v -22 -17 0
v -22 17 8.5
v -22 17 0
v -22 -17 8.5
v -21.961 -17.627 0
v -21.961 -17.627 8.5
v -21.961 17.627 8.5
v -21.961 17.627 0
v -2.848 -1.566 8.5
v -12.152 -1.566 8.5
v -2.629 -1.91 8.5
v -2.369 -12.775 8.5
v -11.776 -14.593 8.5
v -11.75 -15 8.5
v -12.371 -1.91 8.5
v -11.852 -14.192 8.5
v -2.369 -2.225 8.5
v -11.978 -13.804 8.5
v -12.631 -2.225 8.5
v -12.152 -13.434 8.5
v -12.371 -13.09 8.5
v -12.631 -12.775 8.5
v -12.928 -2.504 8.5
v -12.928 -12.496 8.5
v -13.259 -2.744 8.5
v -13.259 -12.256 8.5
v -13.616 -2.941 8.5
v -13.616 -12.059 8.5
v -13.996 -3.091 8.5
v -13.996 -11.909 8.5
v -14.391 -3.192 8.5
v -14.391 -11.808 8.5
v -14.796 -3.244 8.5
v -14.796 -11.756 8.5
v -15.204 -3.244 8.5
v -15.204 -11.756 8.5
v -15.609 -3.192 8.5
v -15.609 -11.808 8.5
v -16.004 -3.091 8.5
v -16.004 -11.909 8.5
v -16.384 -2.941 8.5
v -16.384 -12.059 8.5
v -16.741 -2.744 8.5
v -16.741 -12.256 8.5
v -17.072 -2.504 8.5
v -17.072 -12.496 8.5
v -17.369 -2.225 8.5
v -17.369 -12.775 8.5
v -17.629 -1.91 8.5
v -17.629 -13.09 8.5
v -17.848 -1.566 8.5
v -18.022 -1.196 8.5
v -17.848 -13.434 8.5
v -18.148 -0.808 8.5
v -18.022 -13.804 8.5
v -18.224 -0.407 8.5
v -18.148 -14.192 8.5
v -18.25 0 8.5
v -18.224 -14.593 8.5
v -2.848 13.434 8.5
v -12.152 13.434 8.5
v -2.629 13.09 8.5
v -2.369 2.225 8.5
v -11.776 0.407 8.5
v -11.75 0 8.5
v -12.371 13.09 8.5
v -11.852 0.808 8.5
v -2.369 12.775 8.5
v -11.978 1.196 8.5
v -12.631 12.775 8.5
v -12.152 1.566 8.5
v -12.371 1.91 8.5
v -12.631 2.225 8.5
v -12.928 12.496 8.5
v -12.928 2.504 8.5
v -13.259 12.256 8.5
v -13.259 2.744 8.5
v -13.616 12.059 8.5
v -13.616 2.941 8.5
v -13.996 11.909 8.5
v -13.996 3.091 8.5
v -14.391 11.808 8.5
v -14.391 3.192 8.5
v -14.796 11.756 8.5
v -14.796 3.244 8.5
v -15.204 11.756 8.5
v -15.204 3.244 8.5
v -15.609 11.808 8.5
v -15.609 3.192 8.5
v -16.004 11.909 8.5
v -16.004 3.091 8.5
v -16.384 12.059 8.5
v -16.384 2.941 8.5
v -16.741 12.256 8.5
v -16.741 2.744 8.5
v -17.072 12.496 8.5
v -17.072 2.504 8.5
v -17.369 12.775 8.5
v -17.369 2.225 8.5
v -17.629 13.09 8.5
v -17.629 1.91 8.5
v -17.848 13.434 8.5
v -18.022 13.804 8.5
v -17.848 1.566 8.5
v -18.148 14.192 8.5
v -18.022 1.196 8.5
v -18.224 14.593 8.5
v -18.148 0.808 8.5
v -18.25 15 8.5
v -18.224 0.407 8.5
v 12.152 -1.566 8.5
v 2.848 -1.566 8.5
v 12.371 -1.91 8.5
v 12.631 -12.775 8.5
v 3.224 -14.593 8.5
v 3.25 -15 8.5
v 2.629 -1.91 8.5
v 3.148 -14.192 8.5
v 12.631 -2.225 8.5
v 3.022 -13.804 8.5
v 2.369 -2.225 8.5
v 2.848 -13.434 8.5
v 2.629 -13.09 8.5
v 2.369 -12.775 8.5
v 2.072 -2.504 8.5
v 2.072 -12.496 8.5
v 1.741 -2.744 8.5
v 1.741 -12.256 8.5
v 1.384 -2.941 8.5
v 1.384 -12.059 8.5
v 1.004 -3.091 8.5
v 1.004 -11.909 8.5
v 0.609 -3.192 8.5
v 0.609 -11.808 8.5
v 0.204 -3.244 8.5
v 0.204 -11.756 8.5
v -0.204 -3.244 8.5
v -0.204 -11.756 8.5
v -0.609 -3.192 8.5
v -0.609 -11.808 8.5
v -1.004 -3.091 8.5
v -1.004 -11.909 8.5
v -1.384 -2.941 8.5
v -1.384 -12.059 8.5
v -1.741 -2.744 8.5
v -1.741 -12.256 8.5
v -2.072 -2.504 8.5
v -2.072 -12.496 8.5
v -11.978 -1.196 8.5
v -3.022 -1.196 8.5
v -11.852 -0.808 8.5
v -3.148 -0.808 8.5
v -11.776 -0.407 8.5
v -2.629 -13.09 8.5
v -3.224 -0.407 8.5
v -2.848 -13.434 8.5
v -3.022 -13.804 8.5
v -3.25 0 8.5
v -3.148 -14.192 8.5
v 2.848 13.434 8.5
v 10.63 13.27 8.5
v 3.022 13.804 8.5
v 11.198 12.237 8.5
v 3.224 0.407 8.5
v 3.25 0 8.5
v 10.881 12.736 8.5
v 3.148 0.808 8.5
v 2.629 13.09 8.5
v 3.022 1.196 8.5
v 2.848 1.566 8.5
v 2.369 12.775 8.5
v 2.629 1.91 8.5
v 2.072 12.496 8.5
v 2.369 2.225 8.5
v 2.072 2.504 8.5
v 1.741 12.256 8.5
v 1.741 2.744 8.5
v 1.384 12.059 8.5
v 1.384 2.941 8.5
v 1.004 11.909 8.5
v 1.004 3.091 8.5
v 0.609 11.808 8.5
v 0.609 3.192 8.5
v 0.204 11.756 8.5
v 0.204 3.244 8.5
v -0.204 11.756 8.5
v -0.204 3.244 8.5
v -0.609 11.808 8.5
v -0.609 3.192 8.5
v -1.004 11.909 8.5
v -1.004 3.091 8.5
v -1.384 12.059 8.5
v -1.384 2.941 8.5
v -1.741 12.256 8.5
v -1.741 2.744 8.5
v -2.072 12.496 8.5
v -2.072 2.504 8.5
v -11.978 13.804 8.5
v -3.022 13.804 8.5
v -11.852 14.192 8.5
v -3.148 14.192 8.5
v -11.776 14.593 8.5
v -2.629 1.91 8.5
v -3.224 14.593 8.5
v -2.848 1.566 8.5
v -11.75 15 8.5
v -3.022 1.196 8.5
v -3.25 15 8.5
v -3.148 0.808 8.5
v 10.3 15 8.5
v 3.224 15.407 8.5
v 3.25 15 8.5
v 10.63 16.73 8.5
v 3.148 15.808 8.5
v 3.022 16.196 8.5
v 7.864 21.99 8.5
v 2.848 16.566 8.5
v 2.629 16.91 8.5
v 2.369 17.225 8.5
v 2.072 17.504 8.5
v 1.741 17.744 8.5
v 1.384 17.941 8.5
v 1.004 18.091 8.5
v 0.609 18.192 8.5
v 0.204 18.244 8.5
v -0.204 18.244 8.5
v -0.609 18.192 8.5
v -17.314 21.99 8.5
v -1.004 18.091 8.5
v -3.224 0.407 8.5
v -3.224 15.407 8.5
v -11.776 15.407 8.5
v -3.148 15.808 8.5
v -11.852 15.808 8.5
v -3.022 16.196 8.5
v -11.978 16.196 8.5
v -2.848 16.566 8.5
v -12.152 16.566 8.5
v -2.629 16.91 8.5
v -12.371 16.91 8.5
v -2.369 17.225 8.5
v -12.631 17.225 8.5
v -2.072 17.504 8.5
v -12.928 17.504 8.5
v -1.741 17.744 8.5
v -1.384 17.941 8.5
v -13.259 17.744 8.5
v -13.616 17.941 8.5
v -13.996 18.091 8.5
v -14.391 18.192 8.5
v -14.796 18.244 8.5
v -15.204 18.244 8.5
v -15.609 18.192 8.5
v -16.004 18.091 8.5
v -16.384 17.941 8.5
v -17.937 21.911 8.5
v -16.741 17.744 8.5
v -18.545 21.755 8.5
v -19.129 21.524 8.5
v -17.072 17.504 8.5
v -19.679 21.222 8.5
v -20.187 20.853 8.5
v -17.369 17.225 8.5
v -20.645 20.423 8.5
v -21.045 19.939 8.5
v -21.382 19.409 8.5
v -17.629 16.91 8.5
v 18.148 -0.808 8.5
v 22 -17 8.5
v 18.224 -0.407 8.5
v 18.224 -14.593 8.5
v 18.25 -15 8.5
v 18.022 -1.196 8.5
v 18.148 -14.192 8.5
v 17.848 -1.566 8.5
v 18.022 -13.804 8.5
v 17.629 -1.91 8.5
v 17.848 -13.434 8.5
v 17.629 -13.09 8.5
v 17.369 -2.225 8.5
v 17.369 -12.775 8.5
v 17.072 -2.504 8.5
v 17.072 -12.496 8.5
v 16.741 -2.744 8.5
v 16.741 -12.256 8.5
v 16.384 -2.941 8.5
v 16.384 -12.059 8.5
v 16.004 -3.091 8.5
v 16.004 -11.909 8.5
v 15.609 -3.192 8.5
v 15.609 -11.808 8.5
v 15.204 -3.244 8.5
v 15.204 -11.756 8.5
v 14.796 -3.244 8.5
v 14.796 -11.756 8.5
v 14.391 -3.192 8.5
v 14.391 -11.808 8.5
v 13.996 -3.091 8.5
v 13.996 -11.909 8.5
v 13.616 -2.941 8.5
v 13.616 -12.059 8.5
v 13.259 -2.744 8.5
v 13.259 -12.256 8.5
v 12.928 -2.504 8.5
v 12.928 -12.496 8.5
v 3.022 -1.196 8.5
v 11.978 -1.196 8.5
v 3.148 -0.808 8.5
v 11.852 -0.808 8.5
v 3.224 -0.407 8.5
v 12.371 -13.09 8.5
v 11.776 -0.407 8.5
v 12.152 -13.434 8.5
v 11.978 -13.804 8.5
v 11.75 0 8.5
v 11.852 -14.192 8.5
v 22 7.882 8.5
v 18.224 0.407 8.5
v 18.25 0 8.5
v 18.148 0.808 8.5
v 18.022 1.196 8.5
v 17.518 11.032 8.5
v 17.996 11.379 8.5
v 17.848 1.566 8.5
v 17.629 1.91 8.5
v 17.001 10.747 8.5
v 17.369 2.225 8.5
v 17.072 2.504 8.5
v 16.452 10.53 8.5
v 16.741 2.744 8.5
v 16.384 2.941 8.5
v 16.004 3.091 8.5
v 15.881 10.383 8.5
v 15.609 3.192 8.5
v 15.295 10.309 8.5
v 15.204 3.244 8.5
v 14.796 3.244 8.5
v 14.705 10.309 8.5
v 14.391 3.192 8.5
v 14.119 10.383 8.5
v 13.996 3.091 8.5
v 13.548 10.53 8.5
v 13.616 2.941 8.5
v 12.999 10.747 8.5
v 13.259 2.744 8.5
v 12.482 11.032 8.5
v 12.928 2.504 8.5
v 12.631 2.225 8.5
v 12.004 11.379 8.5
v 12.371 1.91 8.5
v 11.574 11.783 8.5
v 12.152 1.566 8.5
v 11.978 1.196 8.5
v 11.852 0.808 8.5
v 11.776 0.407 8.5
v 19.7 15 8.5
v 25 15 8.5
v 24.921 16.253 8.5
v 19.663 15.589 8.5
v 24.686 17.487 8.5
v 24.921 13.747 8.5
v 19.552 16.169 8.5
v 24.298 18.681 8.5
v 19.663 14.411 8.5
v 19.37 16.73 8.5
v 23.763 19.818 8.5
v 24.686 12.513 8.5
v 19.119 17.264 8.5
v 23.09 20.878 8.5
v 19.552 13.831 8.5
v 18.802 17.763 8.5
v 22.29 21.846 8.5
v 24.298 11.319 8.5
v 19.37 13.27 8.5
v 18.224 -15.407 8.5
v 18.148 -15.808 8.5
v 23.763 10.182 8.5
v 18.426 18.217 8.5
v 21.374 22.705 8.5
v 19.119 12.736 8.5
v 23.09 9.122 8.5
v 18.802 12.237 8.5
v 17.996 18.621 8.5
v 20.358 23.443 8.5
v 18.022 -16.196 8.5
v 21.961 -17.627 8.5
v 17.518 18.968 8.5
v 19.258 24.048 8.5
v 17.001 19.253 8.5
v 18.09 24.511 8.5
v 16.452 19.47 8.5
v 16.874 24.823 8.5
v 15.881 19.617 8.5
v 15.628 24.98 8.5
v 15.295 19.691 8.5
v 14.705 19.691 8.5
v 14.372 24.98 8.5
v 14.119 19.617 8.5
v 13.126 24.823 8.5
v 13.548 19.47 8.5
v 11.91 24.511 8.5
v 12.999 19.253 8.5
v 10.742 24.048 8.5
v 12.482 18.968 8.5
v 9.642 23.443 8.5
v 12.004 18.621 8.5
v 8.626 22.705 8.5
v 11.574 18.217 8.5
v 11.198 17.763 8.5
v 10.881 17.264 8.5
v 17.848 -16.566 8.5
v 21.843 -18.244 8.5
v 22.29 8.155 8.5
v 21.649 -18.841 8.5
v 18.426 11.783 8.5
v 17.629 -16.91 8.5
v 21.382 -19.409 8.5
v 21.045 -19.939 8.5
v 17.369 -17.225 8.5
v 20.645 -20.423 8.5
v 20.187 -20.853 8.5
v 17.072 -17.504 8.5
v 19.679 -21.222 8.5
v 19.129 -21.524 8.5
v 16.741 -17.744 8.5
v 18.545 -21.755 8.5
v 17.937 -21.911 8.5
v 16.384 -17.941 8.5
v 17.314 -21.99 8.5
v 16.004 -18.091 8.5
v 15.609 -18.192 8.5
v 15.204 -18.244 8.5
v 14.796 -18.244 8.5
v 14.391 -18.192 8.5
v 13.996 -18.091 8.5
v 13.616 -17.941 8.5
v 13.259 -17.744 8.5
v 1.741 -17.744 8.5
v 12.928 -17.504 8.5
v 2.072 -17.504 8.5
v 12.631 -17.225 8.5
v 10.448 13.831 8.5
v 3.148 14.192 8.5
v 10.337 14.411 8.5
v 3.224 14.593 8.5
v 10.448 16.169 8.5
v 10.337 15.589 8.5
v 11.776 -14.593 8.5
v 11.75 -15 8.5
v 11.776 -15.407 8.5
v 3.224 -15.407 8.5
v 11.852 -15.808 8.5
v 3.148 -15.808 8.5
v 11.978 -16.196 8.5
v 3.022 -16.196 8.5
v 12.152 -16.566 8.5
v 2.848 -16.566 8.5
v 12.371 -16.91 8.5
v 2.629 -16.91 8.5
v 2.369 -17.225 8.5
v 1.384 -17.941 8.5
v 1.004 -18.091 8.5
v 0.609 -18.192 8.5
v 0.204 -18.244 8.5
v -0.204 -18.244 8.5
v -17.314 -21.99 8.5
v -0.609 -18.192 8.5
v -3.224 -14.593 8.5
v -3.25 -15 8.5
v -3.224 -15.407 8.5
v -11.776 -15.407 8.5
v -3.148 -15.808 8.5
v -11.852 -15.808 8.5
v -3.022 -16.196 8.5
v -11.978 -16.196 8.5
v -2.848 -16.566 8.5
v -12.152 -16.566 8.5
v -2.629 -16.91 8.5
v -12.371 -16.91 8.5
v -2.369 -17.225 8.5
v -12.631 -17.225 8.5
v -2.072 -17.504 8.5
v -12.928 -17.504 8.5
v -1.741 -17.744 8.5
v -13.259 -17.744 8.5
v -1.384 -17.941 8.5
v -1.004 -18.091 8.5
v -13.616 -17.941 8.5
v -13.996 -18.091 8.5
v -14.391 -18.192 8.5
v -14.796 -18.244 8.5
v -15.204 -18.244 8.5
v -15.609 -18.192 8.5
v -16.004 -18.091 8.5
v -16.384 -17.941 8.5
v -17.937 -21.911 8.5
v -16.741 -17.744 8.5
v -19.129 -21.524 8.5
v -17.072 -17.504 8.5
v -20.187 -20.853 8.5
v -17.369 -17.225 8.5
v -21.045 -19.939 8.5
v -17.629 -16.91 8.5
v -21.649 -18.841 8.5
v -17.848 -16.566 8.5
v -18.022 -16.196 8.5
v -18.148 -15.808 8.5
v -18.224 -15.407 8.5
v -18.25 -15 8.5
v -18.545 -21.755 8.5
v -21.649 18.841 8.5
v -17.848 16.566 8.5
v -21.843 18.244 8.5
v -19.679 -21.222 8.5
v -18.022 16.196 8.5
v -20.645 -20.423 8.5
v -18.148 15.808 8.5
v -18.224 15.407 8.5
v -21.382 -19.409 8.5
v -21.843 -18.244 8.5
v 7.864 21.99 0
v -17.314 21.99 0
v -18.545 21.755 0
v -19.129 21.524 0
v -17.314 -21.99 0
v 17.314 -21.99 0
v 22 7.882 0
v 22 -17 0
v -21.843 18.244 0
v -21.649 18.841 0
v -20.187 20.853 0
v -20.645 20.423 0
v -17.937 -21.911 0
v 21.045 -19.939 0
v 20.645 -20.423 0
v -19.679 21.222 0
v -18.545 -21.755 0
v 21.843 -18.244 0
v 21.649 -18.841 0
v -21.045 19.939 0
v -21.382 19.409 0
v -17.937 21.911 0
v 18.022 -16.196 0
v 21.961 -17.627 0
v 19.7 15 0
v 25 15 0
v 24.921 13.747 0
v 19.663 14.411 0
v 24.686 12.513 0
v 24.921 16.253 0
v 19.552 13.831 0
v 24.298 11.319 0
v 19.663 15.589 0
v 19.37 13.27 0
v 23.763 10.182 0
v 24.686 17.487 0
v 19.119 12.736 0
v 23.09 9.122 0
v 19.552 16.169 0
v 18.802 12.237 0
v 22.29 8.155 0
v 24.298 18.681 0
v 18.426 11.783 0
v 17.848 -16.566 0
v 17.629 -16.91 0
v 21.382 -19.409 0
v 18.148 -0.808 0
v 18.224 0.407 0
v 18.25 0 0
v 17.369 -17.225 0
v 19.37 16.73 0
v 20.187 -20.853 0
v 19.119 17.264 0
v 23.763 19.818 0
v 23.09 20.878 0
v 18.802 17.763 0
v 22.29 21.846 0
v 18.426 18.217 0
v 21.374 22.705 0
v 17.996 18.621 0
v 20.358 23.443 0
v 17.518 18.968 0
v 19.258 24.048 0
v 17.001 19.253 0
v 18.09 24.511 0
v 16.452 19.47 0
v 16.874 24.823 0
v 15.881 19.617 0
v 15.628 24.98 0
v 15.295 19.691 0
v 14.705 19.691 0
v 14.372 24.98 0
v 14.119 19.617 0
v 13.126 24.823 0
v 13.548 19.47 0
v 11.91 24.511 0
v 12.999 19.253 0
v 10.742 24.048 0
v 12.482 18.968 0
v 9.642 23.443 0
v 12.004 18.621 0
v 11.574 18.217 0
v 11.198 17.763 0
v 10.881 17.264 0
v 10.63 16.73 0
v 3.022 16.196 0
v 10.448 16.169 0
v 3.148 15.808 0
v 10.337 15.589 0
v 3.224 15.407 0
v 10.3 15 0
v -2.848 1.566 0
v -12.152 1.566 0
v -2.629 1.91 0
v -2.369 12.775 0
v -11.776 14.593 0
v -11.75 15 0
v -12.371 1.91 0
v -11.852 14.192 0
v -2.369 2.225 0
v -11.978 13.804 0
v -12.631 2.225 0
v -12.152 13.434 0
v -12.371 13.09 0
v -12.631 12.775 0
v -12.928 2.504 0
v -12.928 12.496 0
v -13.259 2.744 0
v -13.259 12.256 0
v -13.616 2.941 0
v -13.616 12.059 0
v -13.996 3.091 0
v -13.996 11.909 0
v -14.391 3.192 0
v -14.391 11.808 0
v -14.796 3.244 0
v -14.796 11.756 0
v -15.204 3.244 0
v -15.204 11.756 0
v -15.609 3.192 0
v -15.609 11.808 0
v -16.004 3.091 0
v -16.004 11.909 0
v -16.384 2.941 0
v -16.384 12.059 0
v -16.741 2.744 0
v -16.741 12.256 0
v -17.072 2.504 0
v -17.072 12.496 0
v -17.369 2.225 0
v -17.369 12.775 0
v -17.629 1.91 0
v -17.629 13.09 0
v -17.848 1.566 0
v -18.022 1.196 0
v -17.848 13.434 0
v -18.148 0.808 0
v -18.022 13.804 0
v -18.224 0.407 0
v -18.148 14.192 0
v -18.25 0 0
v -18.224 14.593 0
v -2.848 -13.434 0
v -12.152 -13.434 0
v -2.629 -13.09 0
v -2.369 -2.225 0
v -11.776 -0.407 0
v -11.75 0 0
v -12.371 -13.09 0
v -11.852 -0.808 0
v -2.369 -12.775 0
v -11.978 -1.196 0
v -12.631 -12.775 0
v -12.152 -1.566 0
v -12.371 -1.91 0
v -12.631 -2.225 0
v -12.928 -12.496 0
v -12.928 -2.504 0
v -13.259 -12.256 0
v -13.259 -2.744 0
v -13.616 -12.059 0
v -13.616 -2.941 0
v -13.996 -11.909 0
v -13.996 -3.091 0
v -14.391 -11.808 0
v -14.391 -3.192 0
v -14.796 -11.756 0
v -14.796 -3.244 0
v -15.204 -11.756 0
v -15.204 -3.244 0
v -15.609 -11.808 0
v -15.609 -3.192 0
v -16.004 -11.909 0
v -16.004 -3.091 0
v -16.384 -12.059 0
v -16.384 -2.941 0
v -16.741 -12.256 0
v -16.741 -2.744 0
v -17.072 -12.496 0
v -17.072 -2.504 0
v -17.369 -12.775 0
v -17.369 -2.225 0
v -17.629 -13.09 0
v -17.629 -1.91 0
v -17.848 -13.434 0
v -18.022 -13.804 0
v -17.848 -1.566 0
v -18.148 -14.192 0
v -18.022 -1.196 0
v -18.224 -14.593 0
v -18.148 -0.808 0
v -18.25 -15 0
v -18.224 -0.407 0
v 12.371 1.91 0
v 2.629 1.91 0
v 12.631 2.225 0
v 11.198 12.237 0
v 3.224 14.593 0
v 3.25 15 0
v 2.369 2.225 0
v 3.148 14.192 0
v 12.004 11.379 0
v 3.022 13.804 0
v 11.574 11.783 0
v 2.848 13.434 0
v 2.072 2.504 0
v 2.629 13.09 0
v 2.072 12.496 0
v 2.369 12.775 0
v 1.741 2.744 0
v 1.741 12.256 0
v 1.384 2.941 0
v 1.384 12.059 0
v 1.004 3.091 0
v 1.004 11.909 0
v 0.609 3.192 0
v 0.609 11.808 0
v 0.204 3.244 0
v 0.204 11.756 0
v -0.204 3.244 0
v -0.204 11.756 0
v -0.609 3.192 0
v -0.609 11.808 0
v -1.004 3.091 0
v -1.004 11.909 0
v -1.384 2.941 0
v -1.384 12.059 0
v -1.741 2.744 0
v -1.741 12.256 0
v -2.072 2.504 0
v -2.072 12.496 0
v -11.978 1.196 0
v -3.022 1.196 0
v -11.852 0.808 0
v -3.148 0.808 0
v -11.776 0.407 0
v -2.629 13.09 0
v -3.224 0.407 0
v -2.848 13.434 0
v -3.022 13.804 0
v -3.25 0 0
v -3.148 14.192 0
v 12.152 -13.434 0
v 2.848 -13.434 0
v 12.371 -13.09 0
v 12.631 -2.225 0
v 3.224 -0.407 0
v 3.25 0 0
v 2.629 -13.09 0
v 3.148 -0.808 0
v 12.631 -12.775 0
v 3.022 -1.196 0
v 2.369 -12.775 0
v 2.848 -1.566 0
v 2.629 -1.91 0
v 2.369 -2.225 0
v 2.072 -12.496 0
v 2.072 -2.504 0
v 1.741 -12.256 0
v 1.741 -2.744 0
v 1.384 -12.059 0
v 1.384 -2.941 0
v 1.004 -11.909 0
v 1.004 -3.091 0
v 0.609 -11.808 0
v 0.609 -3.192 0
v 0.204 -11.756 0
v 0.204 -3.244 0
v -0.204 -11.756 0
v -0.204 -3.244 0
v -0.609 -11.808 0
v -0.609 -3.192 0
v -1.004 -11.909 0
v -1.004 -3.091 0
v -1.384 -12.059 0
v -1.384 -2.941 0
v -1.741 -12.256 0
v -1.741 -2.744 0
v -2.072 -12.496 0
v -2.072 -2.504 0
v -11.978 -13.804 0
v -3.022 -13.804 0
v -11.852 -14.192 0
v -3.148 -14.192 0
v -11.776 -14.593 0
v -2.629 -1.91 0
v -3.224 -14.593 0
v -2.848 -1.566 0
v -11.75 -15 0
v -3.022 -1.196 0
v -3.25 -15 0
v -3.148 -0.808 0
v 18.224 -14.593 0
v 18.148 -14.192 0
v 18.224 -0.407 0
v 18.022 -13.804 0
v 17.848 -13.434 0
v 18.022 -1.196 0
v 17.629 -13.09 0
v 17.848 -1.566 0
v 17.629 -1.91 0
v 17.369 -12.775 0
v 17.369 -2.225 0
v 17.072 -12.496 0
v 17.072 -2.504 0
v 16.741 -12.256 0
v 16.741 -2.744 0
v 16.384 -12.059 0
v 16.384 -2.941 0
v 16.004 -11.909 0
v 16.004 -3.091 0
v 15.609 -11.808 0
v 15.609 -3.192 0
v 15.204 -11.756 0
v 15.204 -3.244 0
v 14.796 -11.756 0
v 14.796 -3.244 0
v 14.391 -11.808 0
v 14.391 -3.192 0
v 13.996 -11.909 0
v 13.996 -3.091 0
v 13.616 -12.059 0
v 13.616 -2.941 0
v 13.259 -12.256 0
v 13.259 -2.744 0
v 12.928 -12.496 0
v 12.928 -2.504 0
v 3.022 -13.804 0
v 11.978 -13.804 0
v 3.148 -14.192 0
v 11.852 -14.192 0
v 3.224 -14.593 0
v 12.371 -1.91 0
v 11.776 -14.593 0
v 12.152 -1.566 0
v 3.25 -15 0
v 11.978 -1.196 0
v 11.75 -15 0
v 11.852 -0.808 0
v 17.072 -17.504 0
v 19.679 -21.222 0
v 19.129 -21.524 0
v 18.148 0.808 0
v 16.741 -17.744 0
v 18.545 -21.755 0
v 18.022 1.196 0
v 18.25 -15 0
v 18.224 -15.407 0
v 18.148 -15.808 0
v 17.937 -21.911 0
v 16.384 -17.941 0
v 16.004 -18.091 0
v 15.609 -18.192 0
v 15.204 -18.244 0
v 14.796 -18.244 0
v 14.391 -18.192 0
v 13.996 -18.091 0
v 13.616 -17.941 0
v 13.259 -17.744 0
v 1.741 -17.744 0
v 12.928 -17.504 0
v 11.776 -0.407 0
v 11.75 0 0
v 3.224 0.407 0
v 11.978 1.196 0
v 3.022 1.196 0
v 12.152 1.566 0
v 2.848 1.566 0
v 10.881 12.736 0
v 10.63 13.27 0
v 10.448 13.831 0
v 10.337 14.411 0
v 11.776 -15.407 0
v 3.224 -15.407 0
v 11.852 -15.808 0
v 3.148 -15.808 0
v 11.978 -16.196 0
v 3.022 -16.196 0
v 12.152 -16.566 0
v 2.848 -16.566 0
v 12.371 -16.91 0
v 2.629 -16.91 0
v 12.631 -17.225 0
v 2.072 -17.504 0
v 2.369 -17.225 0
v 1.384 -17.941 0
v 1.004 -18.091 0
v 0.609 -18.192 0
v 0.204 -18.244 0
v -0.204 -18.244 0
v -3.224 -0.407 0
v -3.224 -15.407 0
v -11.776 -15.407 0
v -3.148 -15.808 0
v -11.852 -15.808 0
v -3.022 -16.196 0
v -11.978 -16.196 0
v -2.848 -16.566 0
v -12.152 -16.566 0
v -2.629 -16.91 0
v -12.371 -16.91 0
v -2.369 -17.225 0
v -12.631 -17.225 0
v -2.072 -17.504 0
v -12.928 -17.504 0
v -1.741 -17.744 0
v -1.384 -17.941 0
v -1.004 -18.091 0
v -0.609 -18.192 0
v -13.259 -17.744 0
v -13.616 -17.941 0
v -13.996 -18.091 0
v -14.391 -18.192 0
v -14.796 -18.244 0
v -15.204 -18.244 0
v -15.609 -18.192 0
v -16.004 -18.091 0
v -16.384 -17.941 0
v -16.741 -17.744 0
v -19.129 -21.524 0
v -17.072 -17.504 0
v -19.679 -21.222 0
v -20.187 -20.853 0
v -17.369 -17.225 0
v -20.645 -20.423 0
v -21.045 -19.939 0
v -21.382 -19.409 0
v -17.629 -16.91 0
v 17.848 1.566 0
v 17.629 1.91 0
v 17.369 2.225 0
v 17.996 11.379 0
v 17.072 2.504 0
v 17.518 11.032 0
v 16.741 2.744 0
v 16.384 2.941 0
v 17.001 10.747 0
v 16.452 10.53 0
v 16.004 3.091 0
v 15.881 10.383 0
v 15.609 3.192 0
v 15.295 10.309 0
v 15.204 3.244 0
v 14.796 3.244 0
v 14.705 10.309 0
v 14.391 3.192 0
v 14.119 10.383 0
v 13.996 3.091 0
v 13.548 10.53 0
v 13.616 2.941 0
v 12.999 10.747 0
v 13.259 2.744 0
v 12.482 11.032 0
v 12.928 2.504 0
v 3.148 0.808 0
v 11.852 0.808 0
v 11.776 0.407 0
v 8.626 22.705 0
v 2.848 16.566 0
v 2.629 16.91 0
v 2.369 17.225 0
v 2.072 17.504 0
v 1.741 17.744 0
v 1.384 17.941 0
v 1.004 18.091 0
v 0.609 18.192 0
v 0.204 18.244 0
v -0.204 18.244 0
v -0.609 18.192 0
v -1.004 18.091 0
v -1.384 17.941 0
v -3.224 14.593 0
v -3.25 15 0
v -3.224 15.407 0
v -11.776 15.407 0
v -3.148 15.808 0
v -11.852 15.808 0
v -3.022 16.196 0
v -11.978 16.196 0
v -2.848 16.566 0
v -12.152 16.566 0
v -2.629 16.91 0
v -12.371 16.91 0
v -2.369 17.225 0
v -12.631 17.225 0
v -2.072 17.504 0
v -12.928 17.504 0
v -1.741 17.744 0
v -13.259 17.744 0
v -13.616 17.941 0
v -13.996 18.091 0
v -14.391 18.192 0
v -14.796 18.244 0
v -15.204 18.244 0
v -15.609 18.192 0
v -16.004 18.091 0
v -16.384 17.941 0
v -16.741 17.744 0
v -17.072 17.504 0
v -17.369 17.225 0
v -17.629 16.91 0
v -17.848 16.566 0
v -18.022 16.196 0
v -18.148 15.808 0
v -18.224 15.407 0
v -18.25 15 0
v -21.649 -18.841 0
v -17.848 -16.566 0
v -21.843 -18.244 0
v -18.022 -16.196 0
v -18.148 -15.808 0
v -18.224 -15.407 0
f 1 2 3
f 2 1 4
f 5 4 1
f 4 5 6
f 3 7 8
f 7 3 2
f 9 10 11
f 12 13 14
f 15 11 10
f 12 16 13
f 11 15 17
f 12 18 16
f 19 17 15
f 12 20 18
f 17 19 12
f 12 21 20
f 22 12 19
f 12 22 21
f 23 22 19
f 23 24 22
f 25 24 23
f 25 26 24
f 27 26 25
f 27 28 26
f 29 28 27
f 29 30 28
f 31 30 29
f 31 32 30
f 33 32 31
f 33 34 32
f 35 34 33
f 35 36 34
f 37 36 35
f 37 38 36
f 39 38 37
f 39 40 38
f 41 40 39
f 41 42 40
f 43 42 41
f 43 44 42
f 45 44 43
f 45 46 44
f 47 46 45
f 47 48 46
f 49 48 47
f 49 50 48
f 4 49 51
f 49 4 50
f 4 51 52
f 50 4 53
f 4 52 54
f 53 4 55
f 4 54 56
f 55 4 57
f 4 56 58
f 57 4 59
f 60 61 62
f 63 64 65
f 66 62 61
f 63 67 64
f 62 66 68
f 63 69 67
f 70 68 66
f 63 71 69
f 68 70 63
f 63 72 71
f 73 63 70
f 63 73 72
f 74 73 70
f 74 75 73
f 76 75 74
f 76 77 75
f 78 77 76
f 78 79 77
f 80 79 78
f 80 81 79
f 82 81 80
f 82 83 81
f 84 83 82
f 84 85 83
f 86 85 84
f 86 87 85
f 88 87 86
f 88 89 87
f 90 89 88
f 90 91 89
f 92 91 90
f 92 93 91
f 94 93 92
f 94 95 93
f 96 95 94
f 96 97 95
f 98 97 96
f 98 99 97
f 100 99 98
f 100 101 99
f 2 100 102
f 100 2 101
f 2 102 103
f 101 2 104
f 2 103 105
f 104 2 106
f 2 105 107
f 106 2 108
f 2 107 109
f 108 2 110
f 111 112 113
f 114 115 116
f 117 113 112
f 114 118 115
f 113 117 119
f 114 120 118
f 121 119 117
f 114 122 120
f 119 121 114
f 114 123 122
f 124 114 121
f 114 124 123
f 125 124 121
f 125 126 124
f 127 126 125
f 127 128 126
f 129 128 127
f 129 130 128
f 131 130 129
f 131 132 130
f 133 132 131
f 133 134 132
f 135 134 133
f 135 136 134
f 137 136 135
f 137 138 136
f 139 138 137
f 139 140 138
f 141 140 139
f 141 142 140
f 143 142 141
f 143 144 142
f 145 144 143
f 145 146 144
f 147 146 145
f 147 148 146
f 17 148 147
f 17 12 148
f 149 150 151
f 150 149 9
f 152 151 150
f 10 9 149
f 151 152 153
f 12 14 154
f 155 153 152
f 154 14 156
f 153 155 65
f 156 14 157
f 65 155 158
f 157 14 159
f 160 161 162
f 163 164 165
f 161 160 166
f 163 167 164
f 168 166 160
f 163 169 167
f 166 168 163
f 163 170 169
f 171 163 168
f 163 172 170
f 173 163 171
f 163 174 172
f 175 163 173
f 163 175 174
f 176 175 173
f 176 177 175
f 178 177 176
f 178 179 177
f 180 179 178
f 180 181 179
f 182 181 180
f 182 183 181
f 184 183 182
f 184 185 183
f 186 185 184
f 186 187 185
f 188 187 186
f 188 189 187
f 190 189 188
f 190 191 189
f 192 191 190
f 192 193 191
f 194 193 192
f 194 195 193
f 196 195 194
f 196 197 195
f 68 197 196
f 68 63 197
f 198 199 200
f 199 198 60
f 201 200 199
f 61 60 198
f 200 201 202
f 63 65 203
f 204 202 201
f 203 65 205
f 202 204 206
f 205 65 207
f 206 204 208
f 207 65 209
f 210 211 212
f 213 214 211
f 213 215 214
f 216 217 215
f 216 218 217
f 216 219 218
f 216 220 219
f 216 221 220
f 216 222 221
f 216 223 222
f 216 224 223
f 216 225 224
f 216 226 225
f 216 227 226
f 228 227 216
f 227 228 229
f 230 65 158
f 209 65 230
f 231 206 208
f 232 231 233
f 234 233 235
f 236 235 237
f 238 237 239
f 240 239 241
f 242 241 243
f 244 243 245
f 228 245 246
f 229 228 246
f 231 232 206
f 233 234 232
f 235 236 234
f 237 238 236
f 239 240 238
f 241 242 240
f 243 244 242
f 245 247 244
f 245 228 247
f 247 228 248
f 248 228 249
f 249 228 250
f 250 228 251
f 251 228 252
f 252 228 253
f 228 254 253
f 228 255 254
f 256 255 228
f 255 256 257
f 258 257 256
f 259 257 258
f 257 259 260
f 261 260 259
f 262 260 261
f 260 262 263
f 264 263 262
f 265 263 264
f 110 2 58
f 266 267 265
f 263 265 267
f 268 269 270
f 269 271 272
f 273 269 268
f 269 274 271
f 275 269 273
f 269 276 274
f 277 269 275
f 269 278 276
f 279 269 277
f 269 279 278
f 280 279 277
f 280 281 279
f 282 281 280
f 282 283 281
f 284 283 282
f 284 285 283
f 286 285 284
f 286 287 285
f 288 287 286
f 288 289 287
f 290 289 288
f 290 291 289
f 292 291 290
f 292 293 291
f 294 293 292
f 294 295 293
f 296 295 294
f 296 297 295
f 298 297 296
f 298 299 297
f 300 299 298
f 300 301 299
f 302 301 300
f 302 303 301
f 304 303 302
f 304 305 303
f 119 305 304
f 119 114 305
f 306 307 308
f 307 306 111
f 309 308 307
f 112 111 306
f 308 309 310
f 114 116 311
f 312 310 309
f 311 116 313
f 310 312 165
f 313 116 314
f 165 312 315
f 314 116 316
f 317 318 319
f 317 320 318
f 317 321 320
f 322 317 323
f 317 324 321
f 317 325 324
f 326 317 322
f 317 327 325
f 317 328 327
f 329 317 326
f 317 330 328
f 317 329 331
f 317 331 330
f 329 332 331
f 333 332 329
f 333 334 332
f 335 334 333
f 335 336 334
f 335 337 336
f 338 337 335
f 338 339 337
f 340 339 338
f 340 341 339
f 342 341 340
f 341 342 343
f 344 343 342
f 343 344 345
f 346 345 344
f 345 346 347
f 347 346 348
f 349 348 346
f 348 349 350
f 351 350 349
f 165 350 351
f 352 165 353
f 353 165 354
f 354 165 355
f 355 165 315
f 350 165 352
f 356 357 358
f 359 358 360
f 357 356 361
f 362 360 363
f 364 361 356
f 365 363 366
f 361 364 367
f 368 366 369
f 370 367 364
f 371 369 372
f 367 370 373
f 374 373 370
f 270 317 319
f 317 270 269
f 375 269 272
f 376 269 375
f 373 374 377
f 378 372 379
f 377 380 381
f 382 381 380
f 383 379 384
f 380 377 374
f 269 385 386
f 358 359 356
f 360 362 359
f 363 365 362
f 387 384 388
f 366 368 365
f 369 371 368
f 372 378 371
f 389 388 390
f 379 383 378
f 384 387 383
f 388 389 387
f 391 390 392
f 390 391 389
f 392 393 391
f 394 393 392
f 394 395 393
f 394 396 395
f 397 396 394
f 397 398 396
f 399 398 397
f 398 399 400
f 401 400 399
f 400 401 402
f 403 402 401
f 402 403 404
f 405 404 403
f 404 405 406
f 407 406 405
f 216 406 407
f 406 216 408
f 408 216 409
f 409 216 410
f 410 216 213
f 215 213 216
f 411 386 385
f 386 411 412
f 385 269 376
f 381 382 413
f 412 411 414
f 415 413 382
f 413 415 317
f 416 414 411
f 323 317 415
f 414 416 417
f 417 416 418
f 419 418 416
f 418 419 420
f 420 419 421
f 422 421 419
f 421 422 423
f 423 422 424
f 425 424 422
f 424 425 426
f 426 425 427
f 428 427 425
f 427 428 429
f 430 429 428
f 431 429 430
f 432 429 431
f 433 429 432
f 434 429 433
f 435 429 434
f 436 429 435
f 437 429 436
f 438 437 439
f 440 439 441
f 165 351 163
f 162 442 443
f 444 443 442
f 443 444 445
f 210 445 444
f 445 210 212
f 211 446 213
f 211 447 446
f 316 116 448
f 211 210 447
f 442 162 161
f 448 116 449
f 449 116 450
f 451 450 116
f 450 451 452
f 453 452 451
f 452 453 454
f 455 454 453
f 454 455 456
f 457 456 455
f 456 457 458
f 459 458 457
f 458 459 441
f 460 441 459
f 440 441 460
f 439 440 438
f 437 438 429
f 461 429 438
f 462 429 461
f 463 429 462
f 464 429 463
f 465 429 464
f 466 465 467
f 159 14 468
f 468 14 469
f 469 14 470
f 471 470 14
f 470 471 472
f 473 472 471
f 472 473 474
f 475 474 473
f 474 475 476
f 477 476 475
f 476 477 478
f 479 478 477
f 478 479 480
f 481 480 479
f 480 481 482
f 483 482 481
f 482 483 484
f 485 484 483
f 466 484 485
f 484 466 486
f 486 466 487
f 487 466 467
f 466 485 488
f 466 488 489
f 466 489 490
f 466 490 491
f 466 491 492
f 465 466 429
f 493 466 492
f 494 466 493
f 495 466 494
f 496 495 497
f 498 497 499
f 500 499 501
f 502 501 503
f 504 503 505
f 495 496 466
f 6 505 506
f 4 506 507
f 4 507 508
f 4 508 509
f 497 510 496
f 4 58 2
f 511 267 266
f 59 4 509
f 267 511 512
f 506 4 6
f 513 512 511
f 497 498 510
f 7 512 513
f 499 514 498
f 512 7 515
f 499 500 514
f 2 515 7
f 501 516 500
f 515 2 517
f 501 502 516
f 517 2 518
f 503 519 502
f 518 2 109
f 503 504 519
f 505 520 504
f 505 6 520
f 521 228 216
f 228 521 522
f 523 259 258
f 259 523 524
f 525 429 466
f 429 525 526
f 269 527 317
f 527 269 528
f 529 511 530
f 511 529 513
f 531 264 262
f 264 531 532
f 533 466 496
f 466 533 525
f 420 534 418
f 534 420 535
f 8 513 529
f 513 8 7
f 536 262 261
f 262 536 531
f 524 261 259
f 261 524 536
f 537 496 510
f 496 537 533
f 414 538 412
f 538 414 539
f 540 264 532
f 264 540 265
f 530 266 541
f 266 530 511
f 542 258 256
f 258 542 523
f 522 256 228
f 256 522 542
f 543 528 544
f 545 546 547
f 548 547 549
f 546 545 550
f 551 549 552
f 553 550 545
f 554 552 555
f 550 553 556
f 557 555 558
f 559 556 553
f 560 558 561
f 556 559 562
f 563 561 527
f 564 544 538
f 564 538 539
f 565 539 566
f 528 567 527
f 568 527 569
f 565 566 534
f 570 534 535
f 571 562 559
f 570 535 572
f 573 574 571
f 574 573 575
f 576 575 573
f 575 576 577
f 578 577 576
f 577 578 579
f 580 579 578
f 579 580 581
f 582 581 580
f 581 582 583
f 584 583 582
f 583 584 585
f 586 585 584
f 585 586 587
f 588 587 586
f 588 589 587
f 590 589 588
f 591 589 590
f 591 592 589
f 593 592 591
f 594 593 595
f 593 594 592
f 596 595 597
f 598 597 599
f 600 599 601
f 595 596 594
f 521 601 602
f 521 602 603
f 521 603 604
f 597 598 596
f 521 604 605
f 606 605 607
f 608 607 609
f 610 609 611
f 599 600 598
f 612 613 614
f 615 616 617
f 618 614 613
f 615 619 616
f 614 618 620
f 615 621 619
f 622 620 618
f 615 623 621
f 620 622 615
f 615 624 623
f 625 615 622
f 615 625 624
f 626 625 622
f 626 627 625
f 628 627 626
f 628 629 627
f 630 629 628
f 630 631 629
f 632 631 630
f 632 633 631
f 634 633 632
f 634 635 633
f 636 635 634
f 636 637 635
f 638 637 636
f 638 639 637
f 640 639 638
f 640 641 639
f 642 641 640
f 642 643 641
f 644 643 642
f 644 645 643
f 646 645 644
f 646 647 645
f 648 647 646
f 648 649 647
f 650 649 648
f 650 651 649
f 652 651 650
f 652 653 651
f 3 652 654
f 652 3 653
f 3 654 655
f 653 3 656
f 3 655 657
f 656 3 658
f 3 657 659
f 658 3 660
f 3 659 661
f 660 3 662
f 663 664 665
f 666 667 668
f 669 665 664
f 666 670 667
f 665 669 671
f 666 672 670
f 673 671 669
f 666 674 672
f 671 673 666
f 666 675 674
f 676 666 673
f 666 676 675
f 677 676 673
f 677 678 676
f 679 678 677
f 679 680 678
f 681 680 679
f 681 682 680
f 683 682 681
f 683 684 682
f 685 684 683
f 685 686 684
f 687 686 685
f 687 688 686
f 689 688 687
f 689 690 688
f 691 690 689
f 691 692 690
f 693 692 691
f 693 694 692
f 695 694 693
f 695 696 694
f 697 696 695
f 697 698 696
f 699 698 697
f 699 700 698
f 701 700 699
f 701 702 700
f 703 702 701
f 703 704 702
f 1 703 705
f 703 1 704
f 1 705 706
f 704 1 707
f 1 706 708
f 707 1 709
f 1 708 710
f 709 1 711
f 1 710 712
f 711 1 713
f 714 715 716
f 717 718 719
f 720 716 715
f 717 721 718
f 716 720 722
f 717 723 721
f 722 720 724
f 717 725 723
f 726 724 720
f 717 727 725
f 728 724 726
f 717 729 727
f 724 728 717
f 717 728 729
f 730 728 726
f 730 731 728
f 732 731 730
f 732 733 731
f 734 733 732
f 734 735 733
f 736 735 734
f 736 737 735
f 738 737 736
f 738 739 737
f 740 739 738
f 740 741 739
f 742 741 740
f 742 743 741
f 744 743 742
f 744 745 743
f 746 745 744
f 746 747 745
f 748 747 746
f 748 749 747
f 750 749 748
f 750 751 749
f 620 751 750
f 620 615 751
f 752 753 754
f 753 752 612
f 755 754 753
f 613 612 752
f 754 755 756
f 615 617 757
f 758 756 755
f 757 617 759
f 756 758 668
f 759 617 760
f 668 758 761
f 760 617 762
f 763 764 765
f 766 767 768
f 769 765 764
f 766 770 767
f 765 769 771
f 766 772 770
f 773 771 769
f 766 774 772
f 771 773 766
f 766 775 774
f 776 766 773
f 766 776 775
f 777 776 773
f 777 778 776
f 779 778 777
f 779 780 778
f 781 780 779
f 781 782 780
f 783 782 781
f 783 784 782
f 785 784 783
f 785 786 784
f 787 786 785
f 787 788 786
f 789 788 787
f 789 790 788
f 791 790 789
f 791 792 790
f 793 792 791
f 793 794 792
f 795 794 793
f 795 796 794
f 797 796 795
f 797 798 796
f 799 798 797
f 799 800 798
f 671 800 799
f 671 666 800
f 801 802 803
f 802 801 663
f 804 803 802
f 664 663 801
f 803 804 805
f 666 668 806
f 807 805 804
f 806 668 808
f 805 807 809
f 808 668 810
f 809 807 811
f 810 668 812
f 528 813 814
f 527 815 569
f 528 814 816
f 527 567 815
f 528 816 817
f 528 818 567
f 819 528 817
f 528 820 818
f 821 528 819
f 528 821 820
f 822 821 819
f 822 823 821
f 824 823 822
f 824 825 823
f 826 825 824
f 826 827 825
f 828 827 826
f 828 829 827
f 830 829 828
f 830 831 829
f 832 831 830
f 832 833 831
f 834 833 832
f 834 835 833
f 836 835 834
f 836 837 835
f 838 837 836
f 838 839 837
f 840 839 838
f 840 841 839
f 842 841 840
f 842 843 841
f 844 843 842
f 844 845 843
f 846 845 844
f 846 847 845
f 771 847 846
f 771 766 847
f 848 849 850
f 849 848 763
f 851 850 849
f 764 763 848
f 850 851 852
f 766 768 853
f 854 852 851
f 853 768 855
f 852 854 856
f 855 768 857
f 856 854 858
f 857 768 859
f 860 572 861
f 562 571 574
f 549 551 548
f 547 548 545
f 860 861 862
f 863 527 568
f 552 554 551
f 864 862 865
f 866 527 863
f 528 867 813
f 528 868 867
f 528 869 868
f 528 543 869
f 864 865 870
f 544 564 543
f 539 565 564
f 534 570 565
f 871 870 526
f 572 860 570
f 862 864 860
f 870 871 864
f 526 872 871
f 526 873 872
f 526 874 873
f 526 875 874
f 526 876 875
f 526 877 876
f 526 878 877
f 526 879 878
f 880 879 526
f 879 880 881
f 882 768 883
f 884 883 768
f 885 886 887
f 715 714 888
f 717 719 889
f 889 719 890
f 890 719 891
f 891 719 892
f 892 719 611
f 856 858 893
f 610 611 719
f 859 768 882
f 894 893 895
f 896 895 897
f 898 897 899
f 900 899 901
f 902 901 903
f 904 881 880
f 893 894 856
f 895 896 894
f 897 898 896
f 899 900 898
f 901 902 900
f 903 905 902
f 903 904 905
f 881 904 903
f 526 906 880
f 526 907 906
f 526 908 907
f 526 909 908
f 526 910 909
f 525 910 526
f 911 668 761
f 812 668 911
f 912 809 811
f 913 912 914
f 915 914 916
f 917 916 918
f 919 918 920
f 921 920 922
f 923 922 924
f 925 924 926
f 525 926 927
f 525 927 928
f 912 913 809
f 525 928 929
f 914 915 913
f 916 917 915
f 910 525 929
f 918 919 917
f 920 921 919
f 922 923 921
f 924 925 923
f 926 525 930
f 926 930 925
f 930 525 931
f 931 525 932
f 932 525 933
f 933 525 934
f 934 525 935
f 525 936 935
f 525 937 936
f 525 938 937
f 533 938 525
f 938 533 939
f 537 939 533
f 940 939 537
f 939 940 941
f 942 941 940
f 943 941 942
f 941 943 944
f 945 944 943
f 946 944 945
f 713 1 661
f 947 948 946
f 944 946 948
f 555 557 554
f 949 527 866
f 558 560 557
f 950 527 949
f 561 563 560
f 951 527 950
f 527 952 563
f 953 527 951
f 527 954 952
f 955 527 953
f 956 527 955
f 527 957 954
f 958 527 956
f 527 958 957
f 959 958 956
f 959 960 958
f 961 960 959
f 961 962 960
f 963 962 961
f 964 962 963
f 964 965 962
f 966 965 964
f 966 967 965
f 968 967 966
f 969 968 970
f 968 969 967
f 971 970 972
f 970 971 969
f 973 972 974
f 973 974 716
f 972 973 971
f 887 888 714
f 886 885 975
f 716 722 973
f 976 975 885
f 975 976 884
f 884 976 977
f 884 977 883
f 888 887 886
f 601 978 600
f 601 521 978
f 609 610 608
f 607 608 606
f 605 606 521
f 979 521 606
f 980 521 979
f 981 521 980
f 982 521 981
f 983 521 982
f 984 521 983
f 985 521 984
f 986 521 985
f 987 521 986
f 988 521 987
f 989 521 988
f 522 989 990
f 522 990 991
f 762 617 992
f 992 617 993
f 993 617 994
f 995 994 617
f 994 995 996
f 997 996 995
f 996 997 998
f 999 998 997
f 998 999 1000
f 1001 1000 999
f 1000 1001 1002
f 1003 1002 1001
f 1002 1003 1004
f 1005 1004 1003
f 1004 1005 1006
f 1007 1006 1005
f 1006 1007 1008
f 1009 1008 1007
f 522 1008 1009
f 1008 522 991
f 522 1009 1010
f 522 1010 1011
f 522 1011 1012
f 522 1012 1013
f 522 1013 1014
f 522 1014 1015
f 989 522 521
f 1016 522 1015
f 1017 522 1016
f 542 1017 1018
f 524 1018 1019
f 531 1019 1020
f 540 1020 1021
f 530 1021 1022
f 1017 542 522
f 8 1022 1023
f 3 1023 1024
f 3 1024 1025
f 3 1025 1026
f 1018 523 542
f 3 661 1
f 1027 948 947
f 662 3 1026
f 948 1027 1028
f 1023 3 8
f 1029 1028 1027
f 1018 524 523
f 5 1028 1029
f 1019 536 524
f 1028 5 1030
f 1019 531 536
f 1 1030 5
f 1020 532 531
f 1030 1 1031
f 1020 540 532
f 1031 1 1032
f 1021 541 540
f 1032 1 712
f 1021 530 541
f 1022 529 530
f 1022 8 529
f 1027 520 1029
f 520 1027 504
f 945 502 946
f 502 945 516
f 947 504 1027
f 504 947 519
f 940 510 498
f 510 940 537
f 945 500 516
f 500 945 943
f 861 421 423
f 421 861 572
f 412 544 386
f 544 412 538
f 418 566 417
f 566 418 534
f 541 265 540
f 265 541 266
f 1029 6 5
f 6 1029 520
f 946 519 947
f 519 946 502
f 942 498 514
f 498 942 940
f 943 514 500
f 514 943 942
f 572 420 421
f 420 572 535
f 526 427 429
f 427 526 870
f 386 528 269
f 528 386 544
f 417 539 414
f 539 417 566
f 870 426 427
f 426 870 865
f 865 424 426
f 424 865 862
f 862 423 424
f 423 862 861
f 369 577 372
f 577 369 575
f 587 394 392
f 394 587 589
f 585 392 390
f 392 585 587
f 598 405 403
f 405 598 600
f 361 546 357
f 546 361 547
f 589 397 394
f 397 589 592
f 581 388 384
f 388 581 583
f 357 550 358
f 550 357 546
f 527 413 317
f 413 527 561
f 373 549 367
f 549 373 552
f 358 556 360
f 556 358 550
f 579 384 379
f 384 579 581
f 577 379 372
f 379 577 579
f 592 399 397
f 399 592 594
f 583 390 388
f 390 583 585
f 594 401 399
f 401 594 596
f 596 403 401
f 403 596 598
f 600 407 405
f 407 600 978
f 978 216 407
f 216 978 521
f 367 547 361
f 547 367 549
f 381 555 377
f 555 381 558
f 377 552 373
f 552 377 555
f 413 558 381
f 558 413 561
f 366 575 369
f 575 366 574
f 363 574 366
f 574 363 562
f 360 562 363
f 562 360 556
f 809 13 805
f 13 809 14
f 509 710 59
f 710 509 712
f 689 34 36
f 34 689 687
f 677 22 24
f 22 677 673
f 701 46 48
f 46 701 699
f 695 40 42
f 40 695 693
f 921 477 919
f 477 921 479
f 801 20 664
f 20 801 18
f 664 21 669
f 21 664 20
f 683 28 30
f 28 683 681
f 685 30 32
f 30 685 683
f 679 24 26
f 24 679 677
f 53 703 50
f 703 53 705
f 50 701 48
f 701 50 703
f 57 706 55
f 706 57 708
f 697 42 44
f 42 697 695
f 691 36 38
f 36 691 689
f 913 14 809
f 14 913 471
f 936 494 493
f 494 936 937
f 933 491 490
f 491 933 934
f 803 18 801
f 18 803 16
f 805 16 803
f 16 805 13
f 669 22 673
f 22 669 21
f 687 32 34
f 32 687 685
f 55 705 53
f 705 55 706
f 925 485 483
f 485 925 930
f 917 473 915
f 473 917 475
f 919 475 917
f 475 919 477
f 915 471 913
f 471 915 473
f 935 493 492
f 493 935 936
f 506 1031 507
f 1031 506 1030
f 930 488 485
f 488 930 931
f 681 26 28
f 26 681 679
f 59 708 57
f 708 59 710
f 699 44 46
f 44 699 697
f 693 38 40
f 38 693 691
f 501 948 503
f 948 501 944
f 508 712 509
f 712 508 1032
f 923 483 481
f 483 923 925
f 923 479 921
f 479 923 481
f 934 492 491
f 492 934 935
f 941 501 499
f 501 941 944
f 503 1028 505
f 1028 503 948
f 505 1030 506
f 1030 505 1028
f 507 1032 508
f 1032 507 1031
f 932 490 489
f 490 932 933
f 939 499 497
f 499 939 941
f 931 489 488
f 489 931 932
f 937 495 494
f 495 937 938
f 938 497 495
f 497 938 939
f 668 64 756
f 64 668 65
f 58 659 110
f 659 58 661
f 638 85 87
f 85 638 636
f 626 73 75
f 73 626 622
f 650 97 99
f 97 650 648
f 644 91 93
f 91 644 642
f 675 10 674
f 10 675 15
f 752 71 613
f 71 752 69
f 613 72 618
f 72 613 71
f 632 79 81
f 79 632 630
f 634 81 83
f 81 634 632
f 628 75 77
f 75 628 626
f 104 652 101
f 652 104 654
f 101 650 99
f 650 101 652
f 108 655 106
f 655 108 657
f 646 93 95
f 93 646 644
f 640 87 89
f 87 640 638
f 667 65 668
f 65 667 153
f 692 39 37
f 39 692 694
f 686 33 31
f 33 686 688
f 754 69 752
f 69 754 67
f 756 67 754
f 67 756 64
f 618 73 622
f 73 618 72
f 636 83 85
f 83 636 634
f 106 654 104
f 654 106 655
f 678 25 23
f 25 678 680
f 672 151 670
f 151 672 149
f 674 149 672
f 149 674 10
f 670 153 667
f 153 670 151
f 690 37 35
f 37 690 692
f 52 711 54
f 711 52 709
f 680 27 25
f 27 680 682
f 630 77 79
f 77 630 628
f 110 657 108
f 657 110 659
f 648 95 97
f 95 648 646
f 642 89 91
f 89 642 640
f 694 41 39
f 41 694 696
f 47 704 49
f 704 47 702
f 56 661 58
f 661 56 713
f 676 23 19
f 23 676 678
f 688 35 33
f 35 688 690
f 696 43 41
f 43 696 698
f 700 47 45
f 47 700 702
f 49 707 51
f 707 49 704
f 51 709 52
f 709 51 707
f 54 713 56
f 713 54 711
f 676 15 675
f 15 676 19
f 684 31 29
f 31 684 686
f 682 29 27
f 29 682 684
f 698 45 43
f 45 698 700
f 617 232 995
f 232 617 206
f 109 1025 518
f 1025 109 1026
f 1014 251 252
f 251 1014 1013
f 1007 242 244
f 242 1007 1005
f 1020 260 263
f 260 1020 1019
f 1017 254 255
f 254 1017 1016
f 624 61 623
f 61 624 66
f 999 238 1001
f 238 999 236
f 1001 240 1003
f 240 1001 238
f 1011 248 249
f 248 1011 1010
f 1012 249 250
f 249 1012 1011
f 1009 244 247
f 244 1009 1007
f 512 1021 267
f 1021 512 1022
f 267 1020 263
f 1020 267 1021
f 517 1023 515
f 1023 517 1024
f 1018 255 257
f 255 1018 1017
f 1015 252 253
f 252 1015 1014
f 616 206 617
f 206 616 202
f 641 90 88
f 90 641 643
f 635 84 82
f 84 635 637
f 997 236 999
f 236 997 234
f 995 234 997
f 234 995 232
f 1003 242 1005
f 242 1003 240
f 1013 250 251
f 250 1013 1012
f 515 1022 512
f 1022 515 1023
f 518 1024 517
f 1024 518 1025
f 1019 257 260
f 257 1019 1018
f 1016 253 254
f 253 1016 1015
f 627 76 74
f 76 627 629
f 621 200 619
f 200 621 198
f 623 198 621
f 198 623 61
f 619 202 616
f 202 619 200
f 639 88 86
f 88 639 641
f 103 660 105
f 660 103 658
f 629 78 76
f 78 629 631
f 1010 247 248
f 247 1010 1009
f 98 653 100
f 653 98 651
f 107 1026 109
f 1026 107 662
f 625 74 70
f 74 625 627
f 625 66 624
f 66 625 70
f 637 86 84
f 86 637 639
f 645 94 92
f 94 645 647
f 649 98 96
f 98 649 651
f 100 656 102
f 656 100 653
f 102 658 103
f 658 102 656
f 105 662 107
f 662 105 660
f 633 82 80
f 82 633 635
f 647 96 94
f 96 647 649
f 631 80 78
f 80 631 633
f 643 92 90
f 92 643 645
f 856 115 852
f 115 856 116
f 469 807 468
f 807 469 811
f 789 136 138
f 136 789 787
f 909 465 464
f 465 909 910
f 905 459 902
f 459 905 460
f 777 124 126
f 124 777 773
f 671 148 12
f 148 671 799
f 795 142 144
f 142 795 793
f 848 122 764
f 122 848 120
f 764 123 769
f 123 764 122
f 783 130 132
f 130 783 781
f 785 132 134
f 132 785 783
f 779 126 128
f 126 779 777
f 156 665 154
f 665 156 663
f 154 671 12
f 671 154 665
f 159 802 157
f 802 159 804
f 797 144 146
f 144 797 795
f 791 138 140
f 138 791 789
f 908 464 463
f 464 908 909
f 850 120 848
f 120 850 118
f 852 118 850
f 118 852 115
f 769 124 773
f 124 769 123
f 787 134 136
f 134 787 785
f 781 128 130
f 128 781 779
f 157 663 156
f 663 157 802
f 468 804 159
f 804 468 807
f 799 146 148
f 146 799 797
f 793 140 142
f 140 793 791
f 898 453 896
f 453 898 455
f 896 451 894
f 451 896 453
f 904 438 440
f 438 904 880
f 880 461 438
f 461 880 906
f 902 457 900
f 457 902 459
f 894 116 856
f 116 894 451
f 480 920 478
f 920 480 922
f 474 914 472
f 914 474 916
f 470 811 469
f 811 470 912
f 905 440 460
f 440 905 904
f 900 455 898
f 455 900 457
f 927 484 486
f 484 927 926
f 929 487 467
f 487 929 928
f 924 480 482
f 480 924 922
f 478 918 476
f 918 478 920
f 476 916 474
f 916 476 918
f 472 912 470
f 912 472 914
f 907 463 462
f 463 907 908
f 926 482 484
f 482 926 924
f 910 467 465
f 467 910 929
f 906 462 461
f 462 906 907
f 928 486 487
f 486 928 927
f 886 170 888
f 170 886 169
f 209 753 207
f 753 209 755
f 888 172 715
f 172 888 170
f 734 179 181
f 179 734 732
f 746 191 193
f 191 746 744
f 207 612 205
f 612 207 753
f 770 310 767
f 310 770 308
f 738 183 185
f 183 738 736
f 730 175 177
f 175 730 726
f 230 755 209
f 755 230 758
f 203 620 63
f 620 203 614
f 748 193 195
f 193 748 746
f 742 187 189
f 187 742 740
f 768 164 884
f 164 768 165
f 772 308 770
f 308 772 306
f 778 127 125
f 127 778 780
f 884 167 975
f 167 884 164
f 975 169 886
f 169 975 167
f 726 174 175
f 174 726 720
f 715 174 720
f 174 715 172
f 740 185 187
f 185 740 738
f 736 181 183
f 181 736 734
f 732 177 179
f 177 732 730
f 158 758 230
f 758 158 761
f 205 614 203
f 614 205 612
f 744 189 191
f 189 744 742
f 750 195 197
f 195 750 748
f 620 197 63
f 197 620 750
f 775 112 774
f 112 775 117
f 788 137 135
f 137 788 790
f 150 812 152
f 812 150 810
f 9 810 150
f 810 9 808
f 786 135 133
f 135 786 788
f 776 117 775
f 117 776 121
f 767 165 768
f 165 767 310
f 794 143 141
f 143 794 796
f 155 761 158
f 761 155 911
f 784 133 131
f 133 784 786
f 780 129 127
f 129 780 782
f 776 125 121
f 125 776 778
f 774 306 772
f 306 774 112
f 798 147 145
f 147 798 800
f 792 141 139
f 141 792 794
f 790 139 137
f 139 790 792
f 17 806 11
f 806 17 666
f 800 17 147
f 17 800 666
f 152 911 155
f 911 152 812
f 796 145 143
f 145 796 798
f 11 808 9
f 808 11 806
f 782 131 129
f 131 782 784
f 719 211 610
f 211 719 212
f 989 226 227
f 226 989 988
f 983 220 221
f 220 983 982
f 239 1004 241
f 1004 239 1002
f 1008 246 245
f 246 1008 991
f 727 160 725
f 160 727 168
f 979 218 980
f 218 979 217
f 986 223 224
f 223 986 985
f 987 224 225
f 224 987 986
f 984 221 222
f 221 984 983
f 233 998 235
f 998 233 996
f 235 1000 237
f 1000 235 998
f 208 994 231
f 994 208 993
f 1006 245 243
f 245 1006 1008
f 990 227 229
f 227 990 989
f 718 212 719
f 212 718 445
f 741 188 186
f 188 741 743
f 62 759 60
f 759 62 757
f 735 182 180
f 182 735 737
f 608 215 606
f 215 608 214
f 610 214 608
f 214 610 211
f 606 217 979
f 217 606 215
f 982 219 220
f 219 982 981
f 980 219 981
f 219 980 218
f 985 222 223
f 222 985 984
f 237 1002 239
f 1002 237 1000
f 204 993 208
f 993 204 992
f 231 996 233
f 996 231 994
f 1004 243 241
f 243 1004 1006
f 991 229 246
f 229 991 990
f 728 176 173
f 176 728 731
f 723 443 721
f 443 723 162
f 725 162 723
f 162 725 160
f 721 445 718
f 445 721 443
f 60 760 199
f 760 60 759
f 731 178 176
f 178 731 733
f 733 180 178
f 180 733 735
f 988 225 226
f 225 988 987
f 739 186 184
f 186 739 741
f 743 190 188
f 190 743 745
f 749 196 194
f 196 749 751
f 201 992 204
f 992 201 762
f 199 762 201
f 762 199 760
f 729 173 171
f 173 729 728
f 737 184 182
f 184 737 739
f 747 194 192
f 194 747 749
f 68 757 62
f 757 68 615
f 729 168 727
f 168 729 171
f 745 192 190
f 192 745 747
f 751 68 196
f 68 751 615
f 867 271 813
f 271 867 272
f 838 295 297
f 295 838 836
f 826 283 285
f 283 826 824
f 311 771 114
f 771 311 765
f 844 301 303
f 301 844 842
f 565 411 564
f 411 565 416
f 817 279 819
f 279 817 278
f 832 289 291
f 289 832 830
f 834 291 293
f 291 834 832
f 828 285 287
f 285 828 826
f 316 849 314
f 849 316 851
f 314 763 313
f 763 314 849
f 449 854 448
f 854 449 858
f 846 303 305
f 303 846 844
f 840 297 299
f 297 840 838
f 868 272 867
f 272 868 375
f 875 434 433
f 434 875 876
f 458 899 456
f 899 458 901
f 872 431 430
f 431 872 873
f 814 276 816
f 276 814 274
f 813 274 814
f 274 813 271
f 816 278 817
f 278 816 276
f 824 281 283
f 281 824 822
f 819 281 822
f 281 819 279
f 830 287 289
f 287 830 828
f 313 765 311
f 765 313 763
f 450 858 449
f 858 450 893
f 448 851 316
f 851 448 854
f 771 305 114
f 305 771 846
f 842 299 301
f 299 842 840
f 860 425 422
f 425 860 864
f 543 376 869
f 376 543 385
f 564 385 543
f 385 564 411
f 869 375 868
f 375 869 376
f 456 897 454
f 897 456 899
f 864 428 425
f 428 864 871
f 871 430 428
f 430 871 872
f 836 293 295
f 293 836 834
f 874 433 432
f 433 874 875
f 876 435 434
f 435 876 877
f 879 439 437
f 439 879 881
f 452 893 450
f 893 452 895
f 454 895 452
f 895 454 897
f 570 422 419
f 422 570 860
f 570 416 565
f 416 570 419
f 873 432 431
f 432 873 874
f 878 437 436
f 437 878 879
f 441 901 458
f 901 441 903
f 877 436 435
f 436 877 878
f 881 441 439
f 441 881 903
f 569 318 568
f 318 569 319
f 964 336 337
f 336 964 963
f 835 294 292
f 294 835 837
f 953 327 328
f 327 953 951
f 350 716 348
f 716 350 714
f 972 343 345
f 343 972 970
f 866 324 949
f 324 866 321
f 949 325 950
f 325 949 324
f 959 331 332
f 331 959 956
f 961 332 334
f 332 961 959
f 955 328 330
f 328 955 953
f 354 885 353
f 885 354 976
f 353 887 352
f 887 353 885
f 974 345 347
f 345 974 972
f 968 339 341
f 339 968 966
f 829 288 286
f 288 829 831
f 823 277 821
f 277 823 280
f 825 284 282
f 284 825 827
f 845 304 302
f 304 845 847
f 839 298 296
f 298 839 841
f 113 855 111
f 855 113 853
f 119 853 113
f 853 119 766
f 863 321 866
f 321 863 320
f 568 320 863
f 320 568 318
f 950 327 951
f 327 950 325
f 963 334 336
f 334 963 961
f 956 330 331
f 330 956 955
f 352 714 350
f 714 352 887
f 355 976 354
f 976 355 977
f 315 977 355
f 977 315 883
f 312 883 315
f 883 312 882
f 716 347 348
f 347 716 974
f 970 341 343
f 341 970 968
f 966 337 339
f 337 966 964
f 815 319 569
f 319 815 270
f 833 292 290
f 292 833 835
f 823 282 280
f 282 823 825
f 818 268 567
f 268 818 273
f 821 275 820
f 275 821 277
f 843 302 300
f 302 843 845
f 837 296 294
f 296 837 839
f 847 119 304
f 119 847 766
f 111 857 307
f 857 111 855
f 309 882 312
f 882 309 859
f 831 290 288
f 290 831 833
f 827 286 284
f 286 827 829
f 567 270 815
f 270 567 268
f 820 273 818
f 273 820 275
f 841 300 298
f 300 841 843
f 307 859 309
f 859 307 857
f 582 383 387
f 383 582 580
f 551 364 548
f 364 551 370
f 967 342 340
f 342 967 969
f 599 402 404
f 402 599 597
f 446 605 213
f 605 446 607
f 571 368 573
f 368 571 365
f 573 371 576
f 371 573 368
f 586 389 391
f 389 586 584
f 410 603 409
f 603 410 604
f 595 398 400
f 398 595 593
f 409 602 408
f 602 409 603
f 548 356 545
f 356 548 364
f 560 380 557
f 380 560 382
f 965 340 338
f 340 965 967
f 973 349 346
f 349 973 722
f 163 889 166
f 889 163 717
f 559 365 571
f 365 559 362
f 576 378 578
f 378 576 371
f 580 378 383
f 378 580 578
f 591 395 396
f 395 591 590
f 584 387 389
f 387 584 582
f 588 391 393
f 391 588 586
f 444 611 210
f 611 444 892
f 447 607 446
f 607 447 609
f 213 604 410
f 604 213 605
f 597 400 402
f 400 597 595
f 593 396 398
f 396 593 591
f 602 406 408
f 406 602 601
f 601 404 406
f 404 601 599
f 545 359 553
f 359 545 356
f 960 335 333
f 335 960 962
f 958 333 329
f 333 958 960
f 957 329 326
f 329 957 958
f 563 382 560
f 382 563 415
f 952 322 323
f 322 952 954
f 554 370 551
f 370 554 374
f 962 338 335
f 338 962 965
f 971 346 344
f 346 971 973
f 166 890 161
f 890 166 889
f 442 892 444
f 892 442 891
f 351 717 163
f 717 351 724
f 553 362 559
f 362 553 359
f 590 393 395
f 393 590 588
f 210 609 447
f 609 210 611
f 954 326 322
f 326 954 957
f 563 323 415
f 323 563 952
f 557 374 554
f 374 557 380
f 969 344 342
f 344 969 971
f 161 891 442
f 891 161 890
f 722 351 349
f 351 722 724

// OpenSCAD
$fn = 50;


difference() {
	union() {
		translate(v = [0, 0, 0]) {
			rotate(a = [0, 0, 0]) {
				hull() {
					translate(v = [-17.0000000000, 17.0000000000, 0]) {
						rotate(a = [0, 0, 0]) {
							translate(v = [0, 0, 0]) {
								rotate(a = [0, 0, 0]) {
									cylinder(h = 8.5000000000, r = 5);
								}
							}
						}
					}
					translate(v = [17.0000000000, 17.0000000000, 0]) {
						rotate(a = [0, 0, 0]) {
							translate(v = [0, 0, 0]) {
								rotate(a = [0, 0, 0]) {
									cylinder(h = 8.5000000000, r = 5);
								}
							}
						}
					}
					translate(v = [-17.0000000000, -17.0000000000, 0]) {
						rotate(a = [0, 0, 0]) {
							translate(v = [0, 0, 0]) {
								rotate(a = [0, 0, 0]) {
									cylinder(h = 8.5000000000, r = 5);
								}
							}
						}
					}
					translate(v = [17.0000000000, -17.0000000000, 0]) {
						rotate(a = [0, 0, 0]) {
							translate(v = [0, 0, 0]) {
								rotate(a = [0, 0, 0]) {
									cylinder(h = 8.5000000000, r = 5);
								}
							}
						}
					}
				}
			}
		}
		translate(v = [15.0000000000, 15.0000000000, 0.0000000000]) {
			rotate(a = [0, 0, 0]) {
				cylinder(h = 8.5000000000, r = 10.0000000000);
			}
		}
	}
	union() {
		translate(v = [-15.0000000000, -15.0000000000, 0]) {
			rotate(a = [0, 0, 0]) {
				translate(v = [0, 0, -50]) {
					rotate(a = [0, 0, 0]) {
						cylinder(h = 100, r = 3.2500000000);
					}
				}
			}
		}
		translate(v = [-15.0000000000, 0.0000000000, 0]) {
			rotate(a = [0, 0, 0]) {
				translate(v = [0, 0, -50]) {
					rotate(a = [0, 0, 0]) {
						cylinder(h = 100, r = 3.2500000000);
					}
				}
			}
		}
		translate(v = [-15.0000000000, 15.0000000000, 0]) {
			rotate(a = [0, 0, 0]) {
				translate(v = [0, 0, -50]) {
					rotate(a = [0, 0, 0]) {
						cylinder(h = 100, r = 3.2500000000);
					}
				}
			}
		}
		translate(v = [0.0000000000, -15.0000000000, 0]) {
			rotate(a = [0, 0, 0]) {
				translate(v = [0, 0, -50]) {
					rotate(a = [0, 0, 0]) {
						cylinder(h = 100, r = 3.2500000000);
					}
				}
			}
		}
		translate(v = [0.0000000000, 0.0000000000, 0]) {
			rotate(a = [0, 0, 0]) {
				translate(v = [0, 0, -50]) {
					rotate(a = [0, 0, 0]) {
						cylinder(h = 100, r = 3.2500000000);
					}
				}
			}
		}
		translate(v = [0.0000000000, 15.0000000000, 0]) {
			rotate(a = [0, 0, 0]) {
				translate(v = [0, 0, -50]) {
					rotate(a = [0, 0, 0]) {
						cylinder(h = 100, r = 3.2500000000);
					}
				}
			}
		}
		translate(v = [15.0000000000, -15.0000000000, 0]) {
			rotate(a = [0, 0, 0]) {
				translate(v = [0, 0, -50]) {
					rotate(a = [0, 0, 0]) {
						cylinder(h = 100, r = 3.2500000000);
					}
				}
			}
		}
		translate(v = [15.0000000000, 0.0000000000, 0]) {
			rotate(a = [0, 0, 0]) {
				translate(v = [0, 0, -50]) {
					rotate(a = [0, 0, 0]) {
						cylinder(h = 100, r = 3.2500000000);
					}
				}
			}
		}
		translate(v = [15.0000000000, 15.0000000000, 0]) {
			rotate(a = [0, 0, 0]) {
				translate(v = [0, 0, -50]) {
					rotate(a = [0, 0, 0]) {
						cylinder(h = 100, r = 3.2500000000);
					}
				}
			}
		}
		translate(v = [15.0000000000, 15.0000000000, -125.0000000000]) {
			rotate(a = [0, 0, 0]) {
				cylinder(h = 250, r = 4.7000000000);
			}
		}
	}
}
